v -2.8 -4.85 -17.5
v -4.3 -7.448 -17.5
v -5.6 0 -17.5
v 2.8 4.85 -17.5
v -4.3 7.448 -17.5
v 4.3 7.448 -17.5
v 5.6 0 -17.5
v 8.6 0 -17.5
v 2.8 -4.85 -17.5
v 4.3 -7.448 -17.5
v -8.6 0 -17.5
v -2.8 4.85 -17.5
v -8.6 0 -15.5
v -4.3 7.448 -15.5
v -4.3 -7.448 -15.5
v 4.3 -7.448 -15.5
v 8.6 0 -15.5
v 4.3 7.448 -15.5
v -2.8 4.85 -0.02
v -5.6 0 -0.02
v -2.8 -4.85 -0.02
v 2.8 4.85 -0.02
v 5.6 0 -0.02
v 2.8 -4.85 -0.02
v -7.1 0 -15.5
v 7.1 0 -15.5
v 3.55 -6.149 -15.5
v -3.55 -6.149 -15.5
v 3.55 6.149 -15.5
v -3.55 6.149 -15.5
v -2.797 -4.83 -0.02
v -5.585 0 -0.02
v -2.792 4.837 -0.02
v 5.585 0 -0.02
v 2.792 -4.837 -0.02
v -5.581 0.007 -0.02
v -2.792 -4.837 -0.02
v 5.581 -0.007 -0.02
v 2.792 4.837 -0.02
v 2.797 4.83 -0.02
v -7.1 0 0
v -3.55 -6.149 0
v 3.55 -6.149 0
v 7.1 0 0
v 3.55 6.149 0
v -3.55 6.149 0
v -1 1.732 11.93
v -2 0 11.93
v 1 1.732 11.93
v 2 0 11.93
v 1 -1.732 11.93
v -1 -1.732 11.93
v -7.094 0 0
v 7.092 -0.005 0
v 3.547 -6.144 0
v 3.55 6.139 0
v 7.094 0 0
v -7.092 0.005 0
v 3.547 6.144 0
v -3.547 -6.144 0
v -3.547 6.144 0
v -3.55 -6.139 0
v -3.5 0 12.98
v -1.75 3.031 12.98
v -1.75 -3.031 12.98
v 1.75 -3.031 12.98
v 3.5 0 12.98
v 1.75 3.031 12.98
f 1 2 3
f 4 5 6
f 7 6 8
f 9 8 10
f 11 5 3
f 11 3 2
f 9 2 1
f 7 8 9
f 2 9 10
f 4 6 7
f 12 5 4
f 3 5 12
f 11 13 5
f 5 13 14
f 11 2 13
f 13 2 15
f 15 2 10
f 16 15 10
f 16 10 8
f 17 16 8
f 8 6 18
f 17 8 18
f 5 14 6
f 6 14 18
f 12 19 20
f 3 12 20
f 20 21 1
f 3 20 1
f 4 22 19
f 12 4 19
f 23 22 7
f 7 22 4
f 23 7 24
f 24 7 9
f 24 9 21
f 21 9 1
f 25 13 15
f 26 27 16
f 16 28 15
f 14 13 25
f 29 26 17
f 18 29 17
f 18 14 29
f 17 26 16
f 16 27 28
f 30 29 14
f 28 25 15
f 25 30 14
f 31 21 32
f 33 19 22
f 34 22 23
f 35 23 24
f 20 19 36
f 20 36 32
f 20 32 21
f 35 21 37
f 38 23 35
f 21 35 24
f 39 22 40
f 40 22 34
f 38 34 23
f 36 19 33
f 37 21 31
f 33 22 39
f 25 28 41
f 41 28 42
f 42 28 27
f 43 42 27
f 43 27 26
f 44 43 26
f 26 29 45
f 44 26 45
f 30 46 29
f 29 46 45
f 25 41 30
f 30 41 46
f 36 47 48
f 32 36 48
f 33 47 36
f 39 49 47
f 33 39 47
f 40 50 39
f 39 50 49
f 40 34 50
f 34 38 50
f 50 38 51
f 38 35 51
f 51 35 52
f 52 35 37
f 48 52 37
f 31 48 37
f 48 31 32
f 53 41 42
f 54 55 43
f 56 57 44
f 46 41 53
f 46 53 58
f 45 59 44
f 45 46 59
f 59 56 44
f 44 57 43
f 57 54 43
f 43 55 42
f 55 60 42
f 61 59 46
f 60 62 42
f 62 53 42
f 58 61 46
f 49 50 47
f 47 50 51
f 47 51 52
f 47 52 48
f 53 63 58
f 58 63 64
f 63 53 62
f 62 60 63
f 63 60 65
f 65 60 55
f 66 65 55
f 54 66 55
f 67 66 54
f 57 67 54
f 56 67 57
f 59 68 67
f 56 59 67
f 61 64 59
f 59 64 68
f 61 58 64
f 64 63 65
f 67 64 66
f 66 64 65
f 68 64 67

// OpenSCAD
//-----------------------------------------------------------------------
//-- Pen cap
//-- (c) Juan Gonzalez-Gomez (Obijuan). June-2013
//--------------------------------------------------------------------
//-- GPL License
//-----------------------------------------------------------------------

//-- User parameters
module pen_cap(h = 30,        //-- Total cap height 
               body_h = 17,   //-- Body height
               th = 1.5,        //-- Wall thickness
               idiam = 11.2,  //-- Inner diameter
               sides = 6,     //-- Number of sides
               tip_idiam = 4, //-- Tip end diameter
               closed = true, //-- If the tip is opened or closed
               base = true,   //-- Place a base on the bottom
               base_th = 2, //-- Base thickness
              )
{

  //-- Fixed parameters
  //-- Top thickness
  top_th = 1;
  base_lz = 1;
  base_lr = 1.5;

  //-- Calculations
  cap_diam = idiam + 2*th;
  cap_tip_h = h - body_h;
  cap_tip_idiam = tip_idiam + 2*th;

  extra = 10;

  //-- Cap body
  translate([0,0, -body_h/2])
  difference() {
    union() {
      cylinder(r = cap_diam/2, h = body_h, center = true, $fn = sides);
      
      if (base == true) {
        translate([0,0, base_lz/2 - body_h/2])
        cylinder(r = cap_diam/2 + base_lr, h = base_th, center = true, $fn = sides);
      }  
    }  
    cylinder(r = idiam/2, h = body_h + extra, center = true, $fn = sides);
  }

  tip_h = (closed == true) ? cap_tip_h - top_th: cap_tip_h + 0.01;
  pos_tip = (closed == true) ? -top_th/2 - 0.05 : 0;
  
  //-- Cap tip
  translate([0,0, cap_tip_h/2 - 0.02])
  difference() {
    cylinder(r1 = cap_diam/2, r2 = cap_tip_idiam/2 , h = cap_tip_h, center = true, $fn = sides);
    translate([0,0, pos_tip])
    cylinder(r1 = idiam/2, r2 = cap_tip_idiam/2 - th, h = tip_h, center = true, $fn = sides);
  }
  
}

pen_cap(base = true);
